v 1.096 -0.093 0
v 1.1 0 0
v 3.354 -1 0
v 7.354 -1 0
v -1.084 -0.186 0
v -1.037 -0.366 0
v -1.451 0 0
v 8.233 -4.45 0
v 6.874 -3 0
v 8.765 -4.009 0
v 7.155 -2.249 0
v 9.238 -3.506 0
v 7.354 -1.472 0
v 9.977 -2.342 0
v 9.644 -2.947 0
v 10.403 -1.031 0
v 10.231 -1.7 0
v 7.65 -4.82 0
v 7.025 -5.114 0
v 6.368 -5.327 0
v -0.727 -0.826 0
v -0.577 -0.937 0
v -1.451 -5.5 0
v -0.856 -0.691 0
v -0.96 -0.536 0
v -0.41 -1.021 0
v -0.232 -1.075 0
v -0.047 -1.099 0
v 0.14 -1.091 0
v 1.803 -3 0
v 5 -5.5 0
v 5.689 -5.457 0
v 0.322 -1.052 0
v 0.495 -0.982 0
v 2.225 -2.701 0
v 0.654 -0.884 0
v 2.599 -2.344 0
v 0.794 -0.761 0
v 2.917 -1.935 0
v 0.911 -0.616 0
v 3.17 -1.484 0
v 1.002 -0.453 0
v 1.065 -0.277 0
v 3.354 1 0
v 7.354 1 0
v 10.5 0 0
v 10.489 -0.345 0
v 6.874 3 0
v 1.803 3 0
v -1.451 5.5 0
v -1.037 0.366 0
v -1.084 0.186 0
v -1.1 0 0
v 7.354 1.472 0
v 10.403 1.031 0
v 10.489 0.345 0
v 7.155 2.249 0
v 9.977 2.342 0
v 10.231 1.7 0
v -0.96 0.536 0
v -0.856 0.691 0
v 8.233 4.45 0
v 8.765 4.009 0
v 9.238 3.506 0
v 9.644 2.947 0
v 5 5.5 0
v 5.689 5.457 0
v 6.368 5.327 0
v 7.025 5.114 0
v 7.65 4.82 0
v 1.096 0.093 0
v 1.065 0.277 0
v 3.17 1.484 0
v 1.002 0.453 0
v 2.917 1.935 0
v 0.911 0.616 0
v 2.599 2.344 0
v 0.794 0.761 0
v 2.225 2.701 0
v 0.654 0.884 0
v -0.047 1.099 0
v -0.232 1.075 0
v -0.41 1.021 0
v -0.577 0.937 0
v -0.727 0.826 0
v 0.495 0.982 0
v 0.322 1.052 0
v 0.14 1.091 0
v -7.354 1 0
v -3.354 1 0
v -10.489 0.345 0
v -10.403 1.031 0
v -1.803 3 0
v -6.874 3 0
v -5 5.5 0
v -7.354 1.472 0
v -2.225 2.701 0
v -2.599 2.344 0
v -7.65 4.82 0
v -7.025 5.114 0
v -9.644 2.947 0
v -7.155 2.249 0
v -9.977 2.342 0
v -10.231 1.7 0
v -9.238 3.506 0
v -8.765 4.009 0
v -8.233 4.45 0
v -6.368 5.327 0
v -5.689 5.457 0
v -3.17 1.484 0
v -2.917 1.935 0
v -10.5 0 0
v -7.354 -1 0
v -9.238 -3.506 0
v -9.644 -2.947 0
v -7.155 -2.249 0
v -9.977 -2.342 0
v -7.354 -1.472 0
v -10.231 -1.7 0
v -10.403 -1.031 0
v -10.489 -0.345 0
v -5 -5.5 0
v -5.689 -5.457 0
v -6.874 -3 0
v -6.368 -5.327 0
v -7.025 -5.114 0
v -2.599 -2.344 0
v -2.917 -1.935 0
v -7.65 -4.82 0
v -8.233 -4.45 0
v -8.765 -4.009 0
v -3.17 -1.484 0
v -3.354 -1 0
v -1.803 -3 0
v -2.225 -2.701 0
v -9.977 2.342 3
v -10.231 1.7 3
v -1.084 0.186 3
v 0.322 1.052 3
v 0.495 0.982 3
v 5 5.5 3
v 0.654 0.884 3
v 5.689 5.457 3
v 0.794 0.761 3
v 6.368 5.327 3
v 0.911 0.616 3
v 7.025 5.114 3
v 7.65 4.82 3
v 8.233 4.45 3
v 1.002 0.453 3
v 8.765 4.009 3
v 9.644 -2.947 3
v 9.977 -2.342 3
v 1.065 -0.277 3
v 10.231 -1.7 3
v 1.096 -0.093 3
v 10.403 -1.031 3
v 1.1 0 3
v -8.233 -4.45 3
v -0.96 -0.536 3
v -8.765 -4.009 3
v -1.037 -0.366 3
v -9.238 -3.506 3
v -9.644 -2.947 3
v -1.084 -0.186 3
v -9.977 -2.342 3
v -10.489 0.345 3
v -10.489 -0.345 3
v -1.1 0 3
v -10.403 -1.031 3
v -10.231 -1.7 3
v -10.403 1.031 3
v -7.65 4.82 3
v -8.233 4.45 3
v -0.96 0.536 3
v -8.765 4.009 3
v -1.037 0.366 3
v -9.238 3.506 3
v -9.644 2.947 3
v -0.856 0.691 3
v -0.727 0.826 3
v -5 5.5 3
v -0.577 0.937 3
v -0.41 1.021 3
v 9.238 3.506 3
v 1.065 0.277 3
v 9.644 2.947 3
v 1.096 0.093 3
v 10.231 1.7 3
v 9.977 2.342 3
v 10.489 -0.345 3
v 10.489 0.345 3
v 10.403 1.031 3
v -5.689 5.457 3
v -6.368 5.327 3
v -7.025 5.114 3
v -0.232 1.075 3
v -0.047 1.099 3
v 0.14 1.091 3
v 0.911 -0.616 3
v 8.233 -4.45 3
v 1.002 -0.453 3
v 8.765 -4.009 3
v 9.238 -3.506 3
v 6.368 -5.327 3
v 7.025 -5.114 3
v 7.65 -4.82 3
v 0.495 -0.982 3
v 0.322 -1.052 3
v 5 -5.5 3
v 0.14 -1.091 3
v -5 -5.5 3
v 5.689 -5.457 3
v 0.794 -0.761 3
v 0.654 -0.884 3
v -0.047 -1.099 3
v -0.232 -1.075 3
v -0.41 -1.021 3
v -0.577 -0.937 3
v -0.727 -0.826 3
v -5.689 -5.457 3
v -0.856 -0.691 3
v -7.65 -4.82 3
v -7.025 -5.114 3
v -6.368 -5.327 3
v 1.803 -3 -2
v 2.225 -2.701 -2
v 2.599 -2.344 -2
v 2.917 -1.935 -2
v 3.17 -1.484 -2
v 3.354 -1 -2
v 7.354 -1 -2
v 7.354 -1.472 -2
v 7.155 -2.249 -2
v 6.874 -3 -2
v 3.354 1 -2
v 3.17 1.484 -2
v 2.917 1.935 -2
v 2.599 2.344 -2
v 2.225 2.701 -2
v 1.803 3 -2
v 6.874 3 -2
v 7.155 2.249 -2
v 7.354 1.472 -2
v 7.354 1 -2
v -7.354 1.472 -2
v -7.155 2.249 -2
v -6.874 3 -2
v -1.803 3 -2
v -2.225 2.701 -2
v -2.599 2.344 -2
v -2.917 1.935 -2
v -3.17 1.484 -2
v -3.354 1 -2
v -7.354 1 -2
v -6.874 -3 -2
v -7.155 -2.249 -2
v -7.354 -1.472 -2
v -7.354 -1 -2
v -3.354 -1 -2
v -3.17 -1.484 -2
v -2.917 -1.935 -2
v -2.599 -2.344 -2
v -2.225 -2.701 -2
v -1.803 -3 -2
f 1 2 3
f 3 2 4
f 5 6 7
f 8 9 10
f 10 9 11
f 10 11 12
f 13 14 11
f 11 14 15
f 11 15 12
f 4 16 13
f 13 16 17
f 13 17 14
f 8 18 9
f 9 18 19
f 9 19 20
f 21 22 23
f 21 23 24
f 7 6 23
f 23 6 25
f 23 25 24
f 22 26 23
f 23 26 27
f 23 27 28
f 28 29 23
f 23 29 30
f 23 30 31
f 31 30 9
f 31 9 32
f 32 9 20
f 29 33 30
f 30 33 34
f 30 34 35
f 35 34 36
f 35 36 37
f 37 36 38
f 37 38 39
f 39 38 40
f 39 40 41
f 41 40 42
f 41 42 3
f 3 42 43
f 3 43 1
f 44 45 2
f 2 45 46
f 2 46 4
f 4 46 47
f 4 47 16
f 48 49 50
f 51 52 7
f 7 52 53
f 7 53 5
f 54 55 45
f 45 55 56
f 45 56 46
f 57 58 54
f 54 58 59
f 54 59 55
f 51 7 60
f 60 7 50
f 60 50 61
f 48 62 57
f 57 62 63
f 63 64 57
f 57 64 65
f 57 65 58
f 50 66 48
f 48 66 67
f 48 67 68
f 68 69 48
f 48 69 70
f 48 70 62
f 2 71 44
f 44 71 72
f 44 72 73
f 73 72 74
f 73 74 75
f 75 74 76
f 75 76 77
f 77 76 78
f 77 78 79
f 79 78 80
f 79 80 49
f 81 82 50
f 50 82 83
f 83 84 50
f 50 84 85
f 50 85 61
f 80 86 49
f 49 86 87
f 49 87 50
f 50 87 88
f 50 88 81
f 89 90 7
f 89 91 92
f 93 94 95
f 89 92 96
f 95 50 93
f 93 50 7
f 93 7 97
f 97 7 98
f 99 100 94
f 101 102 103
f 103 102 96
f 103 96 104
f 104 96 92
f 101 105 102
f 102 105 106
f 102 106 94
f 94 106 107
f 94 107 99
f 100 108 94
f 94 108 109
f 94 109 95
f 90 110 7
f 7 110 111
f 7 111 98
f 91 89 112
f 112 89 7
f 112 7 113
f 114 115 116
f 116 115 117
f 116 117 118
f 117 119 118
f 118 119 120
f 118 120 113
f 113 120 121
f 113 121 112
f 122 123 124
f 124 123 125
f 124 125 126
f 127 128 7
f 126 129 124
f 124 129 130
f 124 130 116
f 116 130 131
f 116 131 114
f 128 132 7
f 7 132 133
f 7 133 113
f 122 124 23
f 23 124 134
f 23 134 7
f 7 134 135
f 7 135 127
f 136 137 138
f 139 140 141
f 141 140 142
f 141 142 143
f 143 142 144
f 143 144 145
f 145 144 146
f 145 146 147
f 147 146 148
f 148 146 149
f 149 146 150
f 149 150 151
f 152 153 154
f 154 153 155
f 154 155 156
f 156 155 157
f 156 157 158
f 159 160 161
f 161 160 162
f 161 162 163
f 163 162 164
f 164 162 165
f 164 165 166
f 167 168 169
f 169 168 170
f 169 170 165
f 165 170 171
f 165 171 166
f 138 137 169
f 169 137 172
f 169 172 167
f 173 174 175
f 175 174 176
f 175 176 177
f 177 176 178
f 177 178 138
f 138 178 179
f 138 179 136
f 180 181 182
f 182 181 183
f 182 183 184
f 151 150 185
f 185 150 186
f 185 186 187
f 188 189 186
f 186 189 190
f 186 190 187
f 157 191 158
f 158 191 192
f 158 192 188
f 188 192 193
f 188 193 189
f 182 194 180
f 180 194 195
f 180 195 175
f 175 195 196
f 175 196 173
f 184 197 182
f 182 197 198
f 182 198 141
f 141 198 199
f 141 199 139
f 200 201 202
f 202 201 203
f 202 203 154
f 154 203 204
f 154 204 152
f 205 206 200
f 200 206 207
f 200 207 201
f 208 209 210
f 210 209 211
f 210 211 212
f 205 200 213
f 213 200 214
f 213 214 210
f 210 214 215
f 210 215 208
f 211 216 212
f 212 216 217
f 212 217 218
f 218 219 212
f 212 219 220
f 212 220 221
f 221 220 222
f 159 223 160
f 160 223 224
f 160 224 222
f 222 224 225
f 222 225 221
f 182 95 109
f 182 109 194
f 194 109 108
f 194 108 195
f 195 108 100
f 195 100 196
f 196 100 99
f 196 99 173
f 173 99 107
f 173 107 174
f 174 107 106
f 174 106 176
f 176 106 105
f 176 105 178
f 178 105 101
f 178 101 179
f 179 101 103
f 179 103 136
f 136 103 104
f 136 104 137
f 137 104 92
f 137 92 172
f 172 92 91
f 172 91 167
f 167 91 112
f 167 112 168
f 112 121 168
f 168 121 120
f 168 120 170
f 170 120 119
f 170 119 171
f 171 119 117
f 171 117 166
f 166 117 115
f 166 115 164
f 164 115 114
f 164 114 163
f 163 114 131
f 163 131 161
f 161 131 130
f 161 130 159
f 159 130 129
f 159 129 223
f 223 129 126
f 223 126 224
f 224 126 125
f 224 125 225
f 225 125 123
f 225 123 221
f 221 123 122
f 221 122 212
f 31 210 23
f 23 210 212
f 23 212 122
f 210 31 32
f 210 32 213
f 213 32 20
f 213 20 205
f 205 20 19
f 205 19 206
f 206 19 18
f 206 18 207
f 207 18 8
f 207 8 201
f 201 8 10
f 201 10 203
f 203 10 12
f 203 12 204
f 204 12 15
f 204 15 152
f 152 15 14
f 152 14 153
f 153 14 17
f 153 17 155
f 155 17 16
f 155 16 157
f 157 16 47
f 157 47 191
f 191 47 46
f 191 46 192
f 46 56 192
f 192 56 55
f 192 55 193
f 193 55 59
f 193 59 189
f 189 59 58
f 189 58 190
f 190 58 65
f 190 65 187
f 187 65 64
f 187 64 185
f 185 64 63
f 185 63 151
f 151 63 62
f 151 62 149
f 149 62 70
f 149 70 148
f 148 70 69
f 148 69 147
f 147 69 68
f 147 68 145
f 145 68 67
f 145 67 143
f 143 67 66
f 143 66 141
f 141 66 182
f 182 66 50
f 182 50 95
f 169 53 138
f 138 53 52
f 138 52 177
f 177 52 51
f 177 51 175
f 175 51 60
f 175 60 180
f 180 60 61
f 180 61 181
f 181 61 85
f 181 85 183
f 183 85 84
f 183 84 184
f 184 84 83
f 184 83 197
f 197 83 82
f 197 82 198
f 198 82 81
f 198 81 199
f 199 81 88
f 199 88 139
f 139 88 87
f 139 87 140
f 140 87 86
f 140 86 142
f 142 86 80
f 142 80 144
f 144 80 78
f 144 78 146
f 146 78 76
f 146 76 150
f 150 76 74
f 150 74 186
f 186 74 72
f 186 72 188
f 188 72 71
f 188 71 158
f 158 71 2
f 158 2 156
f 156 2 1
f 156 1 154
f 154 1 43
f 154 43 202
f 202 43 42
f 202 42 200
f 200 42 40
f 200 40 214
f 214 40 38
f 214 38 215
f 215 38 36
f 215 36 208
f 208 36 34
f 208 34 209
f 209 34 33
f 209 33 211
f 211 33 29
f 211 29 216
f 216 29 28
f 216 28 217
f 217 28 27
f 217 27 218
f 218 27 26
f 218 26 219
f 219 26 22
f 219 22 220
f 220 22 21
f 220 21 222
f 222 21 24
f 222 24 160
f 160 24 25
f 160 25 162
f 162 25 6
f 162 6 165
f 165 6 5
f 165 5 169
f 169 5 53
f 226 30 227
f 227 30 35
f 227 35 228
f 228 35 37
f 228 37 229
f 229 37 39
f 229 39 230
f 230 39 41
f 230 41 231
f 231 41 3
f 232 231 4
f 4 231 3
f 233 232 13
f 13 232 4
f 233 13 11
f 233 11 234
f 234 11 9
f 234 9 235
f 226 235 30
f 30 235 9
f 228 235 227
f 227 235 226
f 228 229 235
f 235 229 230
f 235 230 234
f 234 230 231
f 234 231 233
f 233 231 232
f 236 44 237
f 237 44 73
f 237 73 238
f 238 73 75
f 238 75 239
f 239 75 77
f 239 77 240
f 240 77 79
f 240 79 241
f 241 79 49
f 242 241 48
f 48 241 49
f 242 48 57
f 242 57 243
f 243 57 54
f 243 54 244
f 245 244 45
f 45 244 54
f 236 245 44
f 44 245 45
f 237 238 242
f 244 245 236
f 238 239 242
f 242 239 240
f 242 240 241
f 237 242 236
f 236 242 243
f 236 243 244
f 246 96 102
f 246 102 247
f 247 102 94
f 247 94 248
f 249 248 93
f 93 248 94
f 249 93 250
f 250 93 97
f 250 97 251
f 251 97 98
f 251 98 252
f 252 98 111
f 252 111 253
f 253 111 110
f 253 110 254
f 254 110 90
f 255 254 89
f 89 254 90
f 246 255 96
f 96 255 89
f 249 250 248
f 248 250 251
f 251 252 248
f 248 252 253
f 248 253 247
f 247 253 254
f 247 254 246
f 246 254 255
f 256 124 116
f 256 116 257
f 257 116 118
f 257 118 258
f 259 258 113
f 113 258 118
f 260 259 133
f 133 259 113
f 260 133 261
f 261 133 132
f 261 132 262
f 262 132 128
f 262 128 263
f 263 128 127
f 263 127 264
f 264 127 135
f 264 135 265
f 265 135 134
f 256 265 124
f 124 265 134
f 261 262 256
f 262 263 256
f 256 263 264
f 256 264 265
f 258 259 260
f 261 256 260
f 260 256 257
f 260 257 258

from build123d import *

# Parameters (mm, degrees)
SKETCH_1_R      = 1.1
EXTRUDE_1_DEPTH = 3
EXTRUDE_2_DEPTH = 2


with BuildPart() as part:
    # 草图1 → 凸台-拉伸1 (new body)
    with BuildSketch(Plane.XY):
        with BuildLine():
            Line((-5, 5.5), (5, 5.5))
            ThreePointArc((5, 5.5), (10.5, 0), (5, -5.5))
            Line((5, -5.5), (-5, -5.5))
            ThreePointArc((-5, -5.5), (-10.5, 0), (-5, 5.5))
        make_face()
        Circle(SKETCH_1_R, mode=Mode.SUBTRACT)
    extrude(amount=EXTRUDE_1_DEPTH)

    # 草图3 → 凸台-拉伸2 (add)
    with BuildSketch(Plane(origin=(0, 0, 0), x_dir=(-1, 0, 0), z_dir=(0, 0, -1))):
        with BuildLine():
            Line((-1.802775638, 3), (-6.873863542, 3))
            ThreePointArc((-6.873863542, 3), (-7.154882442, 2.248923573), (-7.354101966, 1.472135955))
            Line((-7.354101966, 1.472135955), (-7.354101966, 1))
            Line((-7.354101966, 1), (-3.354101966, 1))
            ThreePointArc((-3.354101966, 1), (-2.765564437, 2.145146462), (-1.802775638, 3))
        make_face()
        with BuildLine():
            Line((-7.354101966, -1.472135955), (-7.354101966, -1))
            Line((-7.354101966, -1), (-3.354101966, -1))
            ThreePointArc((-3.354101966, -1), (-2.765564437, -2.145146462), (-1.802775638, -3))
            Line((-1.802775638, -3), (-6.873863542, -3))
            ThreePointArc((-6.873863542, -3), (-7.154882442, -2.248923573), (-7.354101966, -1.472135955))
        make_face()
        with BuildLine():
            Line((1.802775638, -3), (6.873863542, -3))
            ThreePointArc((6.873863542, -3), (7.154882442, -2.248923573), (7.354101966, -1.472135955))
            Line((7.354101966, -1.472135955), (7.354101966, -1))
            Line((7.354101966, -1), (3.354101966, -1))
            ThreePointArc((3.354101966, -1), (2.765564437, -2.145146462), (1.802775638, -3))
        make_face()
        with BuildLine():
            Line((7.354101966, 1.472135955), (7.354101966, 1))
            Line((7.354101966, 1), (3.354101966, 1))
            ThreePointArc((3.354101966, 1), (2.765564437, 2.145146462), (1.802775638, 3))
            Line((1.802775638, 3), (6.873863542, 3))
            ThreePointArc((6.873863542, 3), (7.154882442, 2.248923573), (7.354101966, 1.472135955))
        make_face()
    extrude(amount=EXTRUDE_2_DEPTH)


solid = part.part
